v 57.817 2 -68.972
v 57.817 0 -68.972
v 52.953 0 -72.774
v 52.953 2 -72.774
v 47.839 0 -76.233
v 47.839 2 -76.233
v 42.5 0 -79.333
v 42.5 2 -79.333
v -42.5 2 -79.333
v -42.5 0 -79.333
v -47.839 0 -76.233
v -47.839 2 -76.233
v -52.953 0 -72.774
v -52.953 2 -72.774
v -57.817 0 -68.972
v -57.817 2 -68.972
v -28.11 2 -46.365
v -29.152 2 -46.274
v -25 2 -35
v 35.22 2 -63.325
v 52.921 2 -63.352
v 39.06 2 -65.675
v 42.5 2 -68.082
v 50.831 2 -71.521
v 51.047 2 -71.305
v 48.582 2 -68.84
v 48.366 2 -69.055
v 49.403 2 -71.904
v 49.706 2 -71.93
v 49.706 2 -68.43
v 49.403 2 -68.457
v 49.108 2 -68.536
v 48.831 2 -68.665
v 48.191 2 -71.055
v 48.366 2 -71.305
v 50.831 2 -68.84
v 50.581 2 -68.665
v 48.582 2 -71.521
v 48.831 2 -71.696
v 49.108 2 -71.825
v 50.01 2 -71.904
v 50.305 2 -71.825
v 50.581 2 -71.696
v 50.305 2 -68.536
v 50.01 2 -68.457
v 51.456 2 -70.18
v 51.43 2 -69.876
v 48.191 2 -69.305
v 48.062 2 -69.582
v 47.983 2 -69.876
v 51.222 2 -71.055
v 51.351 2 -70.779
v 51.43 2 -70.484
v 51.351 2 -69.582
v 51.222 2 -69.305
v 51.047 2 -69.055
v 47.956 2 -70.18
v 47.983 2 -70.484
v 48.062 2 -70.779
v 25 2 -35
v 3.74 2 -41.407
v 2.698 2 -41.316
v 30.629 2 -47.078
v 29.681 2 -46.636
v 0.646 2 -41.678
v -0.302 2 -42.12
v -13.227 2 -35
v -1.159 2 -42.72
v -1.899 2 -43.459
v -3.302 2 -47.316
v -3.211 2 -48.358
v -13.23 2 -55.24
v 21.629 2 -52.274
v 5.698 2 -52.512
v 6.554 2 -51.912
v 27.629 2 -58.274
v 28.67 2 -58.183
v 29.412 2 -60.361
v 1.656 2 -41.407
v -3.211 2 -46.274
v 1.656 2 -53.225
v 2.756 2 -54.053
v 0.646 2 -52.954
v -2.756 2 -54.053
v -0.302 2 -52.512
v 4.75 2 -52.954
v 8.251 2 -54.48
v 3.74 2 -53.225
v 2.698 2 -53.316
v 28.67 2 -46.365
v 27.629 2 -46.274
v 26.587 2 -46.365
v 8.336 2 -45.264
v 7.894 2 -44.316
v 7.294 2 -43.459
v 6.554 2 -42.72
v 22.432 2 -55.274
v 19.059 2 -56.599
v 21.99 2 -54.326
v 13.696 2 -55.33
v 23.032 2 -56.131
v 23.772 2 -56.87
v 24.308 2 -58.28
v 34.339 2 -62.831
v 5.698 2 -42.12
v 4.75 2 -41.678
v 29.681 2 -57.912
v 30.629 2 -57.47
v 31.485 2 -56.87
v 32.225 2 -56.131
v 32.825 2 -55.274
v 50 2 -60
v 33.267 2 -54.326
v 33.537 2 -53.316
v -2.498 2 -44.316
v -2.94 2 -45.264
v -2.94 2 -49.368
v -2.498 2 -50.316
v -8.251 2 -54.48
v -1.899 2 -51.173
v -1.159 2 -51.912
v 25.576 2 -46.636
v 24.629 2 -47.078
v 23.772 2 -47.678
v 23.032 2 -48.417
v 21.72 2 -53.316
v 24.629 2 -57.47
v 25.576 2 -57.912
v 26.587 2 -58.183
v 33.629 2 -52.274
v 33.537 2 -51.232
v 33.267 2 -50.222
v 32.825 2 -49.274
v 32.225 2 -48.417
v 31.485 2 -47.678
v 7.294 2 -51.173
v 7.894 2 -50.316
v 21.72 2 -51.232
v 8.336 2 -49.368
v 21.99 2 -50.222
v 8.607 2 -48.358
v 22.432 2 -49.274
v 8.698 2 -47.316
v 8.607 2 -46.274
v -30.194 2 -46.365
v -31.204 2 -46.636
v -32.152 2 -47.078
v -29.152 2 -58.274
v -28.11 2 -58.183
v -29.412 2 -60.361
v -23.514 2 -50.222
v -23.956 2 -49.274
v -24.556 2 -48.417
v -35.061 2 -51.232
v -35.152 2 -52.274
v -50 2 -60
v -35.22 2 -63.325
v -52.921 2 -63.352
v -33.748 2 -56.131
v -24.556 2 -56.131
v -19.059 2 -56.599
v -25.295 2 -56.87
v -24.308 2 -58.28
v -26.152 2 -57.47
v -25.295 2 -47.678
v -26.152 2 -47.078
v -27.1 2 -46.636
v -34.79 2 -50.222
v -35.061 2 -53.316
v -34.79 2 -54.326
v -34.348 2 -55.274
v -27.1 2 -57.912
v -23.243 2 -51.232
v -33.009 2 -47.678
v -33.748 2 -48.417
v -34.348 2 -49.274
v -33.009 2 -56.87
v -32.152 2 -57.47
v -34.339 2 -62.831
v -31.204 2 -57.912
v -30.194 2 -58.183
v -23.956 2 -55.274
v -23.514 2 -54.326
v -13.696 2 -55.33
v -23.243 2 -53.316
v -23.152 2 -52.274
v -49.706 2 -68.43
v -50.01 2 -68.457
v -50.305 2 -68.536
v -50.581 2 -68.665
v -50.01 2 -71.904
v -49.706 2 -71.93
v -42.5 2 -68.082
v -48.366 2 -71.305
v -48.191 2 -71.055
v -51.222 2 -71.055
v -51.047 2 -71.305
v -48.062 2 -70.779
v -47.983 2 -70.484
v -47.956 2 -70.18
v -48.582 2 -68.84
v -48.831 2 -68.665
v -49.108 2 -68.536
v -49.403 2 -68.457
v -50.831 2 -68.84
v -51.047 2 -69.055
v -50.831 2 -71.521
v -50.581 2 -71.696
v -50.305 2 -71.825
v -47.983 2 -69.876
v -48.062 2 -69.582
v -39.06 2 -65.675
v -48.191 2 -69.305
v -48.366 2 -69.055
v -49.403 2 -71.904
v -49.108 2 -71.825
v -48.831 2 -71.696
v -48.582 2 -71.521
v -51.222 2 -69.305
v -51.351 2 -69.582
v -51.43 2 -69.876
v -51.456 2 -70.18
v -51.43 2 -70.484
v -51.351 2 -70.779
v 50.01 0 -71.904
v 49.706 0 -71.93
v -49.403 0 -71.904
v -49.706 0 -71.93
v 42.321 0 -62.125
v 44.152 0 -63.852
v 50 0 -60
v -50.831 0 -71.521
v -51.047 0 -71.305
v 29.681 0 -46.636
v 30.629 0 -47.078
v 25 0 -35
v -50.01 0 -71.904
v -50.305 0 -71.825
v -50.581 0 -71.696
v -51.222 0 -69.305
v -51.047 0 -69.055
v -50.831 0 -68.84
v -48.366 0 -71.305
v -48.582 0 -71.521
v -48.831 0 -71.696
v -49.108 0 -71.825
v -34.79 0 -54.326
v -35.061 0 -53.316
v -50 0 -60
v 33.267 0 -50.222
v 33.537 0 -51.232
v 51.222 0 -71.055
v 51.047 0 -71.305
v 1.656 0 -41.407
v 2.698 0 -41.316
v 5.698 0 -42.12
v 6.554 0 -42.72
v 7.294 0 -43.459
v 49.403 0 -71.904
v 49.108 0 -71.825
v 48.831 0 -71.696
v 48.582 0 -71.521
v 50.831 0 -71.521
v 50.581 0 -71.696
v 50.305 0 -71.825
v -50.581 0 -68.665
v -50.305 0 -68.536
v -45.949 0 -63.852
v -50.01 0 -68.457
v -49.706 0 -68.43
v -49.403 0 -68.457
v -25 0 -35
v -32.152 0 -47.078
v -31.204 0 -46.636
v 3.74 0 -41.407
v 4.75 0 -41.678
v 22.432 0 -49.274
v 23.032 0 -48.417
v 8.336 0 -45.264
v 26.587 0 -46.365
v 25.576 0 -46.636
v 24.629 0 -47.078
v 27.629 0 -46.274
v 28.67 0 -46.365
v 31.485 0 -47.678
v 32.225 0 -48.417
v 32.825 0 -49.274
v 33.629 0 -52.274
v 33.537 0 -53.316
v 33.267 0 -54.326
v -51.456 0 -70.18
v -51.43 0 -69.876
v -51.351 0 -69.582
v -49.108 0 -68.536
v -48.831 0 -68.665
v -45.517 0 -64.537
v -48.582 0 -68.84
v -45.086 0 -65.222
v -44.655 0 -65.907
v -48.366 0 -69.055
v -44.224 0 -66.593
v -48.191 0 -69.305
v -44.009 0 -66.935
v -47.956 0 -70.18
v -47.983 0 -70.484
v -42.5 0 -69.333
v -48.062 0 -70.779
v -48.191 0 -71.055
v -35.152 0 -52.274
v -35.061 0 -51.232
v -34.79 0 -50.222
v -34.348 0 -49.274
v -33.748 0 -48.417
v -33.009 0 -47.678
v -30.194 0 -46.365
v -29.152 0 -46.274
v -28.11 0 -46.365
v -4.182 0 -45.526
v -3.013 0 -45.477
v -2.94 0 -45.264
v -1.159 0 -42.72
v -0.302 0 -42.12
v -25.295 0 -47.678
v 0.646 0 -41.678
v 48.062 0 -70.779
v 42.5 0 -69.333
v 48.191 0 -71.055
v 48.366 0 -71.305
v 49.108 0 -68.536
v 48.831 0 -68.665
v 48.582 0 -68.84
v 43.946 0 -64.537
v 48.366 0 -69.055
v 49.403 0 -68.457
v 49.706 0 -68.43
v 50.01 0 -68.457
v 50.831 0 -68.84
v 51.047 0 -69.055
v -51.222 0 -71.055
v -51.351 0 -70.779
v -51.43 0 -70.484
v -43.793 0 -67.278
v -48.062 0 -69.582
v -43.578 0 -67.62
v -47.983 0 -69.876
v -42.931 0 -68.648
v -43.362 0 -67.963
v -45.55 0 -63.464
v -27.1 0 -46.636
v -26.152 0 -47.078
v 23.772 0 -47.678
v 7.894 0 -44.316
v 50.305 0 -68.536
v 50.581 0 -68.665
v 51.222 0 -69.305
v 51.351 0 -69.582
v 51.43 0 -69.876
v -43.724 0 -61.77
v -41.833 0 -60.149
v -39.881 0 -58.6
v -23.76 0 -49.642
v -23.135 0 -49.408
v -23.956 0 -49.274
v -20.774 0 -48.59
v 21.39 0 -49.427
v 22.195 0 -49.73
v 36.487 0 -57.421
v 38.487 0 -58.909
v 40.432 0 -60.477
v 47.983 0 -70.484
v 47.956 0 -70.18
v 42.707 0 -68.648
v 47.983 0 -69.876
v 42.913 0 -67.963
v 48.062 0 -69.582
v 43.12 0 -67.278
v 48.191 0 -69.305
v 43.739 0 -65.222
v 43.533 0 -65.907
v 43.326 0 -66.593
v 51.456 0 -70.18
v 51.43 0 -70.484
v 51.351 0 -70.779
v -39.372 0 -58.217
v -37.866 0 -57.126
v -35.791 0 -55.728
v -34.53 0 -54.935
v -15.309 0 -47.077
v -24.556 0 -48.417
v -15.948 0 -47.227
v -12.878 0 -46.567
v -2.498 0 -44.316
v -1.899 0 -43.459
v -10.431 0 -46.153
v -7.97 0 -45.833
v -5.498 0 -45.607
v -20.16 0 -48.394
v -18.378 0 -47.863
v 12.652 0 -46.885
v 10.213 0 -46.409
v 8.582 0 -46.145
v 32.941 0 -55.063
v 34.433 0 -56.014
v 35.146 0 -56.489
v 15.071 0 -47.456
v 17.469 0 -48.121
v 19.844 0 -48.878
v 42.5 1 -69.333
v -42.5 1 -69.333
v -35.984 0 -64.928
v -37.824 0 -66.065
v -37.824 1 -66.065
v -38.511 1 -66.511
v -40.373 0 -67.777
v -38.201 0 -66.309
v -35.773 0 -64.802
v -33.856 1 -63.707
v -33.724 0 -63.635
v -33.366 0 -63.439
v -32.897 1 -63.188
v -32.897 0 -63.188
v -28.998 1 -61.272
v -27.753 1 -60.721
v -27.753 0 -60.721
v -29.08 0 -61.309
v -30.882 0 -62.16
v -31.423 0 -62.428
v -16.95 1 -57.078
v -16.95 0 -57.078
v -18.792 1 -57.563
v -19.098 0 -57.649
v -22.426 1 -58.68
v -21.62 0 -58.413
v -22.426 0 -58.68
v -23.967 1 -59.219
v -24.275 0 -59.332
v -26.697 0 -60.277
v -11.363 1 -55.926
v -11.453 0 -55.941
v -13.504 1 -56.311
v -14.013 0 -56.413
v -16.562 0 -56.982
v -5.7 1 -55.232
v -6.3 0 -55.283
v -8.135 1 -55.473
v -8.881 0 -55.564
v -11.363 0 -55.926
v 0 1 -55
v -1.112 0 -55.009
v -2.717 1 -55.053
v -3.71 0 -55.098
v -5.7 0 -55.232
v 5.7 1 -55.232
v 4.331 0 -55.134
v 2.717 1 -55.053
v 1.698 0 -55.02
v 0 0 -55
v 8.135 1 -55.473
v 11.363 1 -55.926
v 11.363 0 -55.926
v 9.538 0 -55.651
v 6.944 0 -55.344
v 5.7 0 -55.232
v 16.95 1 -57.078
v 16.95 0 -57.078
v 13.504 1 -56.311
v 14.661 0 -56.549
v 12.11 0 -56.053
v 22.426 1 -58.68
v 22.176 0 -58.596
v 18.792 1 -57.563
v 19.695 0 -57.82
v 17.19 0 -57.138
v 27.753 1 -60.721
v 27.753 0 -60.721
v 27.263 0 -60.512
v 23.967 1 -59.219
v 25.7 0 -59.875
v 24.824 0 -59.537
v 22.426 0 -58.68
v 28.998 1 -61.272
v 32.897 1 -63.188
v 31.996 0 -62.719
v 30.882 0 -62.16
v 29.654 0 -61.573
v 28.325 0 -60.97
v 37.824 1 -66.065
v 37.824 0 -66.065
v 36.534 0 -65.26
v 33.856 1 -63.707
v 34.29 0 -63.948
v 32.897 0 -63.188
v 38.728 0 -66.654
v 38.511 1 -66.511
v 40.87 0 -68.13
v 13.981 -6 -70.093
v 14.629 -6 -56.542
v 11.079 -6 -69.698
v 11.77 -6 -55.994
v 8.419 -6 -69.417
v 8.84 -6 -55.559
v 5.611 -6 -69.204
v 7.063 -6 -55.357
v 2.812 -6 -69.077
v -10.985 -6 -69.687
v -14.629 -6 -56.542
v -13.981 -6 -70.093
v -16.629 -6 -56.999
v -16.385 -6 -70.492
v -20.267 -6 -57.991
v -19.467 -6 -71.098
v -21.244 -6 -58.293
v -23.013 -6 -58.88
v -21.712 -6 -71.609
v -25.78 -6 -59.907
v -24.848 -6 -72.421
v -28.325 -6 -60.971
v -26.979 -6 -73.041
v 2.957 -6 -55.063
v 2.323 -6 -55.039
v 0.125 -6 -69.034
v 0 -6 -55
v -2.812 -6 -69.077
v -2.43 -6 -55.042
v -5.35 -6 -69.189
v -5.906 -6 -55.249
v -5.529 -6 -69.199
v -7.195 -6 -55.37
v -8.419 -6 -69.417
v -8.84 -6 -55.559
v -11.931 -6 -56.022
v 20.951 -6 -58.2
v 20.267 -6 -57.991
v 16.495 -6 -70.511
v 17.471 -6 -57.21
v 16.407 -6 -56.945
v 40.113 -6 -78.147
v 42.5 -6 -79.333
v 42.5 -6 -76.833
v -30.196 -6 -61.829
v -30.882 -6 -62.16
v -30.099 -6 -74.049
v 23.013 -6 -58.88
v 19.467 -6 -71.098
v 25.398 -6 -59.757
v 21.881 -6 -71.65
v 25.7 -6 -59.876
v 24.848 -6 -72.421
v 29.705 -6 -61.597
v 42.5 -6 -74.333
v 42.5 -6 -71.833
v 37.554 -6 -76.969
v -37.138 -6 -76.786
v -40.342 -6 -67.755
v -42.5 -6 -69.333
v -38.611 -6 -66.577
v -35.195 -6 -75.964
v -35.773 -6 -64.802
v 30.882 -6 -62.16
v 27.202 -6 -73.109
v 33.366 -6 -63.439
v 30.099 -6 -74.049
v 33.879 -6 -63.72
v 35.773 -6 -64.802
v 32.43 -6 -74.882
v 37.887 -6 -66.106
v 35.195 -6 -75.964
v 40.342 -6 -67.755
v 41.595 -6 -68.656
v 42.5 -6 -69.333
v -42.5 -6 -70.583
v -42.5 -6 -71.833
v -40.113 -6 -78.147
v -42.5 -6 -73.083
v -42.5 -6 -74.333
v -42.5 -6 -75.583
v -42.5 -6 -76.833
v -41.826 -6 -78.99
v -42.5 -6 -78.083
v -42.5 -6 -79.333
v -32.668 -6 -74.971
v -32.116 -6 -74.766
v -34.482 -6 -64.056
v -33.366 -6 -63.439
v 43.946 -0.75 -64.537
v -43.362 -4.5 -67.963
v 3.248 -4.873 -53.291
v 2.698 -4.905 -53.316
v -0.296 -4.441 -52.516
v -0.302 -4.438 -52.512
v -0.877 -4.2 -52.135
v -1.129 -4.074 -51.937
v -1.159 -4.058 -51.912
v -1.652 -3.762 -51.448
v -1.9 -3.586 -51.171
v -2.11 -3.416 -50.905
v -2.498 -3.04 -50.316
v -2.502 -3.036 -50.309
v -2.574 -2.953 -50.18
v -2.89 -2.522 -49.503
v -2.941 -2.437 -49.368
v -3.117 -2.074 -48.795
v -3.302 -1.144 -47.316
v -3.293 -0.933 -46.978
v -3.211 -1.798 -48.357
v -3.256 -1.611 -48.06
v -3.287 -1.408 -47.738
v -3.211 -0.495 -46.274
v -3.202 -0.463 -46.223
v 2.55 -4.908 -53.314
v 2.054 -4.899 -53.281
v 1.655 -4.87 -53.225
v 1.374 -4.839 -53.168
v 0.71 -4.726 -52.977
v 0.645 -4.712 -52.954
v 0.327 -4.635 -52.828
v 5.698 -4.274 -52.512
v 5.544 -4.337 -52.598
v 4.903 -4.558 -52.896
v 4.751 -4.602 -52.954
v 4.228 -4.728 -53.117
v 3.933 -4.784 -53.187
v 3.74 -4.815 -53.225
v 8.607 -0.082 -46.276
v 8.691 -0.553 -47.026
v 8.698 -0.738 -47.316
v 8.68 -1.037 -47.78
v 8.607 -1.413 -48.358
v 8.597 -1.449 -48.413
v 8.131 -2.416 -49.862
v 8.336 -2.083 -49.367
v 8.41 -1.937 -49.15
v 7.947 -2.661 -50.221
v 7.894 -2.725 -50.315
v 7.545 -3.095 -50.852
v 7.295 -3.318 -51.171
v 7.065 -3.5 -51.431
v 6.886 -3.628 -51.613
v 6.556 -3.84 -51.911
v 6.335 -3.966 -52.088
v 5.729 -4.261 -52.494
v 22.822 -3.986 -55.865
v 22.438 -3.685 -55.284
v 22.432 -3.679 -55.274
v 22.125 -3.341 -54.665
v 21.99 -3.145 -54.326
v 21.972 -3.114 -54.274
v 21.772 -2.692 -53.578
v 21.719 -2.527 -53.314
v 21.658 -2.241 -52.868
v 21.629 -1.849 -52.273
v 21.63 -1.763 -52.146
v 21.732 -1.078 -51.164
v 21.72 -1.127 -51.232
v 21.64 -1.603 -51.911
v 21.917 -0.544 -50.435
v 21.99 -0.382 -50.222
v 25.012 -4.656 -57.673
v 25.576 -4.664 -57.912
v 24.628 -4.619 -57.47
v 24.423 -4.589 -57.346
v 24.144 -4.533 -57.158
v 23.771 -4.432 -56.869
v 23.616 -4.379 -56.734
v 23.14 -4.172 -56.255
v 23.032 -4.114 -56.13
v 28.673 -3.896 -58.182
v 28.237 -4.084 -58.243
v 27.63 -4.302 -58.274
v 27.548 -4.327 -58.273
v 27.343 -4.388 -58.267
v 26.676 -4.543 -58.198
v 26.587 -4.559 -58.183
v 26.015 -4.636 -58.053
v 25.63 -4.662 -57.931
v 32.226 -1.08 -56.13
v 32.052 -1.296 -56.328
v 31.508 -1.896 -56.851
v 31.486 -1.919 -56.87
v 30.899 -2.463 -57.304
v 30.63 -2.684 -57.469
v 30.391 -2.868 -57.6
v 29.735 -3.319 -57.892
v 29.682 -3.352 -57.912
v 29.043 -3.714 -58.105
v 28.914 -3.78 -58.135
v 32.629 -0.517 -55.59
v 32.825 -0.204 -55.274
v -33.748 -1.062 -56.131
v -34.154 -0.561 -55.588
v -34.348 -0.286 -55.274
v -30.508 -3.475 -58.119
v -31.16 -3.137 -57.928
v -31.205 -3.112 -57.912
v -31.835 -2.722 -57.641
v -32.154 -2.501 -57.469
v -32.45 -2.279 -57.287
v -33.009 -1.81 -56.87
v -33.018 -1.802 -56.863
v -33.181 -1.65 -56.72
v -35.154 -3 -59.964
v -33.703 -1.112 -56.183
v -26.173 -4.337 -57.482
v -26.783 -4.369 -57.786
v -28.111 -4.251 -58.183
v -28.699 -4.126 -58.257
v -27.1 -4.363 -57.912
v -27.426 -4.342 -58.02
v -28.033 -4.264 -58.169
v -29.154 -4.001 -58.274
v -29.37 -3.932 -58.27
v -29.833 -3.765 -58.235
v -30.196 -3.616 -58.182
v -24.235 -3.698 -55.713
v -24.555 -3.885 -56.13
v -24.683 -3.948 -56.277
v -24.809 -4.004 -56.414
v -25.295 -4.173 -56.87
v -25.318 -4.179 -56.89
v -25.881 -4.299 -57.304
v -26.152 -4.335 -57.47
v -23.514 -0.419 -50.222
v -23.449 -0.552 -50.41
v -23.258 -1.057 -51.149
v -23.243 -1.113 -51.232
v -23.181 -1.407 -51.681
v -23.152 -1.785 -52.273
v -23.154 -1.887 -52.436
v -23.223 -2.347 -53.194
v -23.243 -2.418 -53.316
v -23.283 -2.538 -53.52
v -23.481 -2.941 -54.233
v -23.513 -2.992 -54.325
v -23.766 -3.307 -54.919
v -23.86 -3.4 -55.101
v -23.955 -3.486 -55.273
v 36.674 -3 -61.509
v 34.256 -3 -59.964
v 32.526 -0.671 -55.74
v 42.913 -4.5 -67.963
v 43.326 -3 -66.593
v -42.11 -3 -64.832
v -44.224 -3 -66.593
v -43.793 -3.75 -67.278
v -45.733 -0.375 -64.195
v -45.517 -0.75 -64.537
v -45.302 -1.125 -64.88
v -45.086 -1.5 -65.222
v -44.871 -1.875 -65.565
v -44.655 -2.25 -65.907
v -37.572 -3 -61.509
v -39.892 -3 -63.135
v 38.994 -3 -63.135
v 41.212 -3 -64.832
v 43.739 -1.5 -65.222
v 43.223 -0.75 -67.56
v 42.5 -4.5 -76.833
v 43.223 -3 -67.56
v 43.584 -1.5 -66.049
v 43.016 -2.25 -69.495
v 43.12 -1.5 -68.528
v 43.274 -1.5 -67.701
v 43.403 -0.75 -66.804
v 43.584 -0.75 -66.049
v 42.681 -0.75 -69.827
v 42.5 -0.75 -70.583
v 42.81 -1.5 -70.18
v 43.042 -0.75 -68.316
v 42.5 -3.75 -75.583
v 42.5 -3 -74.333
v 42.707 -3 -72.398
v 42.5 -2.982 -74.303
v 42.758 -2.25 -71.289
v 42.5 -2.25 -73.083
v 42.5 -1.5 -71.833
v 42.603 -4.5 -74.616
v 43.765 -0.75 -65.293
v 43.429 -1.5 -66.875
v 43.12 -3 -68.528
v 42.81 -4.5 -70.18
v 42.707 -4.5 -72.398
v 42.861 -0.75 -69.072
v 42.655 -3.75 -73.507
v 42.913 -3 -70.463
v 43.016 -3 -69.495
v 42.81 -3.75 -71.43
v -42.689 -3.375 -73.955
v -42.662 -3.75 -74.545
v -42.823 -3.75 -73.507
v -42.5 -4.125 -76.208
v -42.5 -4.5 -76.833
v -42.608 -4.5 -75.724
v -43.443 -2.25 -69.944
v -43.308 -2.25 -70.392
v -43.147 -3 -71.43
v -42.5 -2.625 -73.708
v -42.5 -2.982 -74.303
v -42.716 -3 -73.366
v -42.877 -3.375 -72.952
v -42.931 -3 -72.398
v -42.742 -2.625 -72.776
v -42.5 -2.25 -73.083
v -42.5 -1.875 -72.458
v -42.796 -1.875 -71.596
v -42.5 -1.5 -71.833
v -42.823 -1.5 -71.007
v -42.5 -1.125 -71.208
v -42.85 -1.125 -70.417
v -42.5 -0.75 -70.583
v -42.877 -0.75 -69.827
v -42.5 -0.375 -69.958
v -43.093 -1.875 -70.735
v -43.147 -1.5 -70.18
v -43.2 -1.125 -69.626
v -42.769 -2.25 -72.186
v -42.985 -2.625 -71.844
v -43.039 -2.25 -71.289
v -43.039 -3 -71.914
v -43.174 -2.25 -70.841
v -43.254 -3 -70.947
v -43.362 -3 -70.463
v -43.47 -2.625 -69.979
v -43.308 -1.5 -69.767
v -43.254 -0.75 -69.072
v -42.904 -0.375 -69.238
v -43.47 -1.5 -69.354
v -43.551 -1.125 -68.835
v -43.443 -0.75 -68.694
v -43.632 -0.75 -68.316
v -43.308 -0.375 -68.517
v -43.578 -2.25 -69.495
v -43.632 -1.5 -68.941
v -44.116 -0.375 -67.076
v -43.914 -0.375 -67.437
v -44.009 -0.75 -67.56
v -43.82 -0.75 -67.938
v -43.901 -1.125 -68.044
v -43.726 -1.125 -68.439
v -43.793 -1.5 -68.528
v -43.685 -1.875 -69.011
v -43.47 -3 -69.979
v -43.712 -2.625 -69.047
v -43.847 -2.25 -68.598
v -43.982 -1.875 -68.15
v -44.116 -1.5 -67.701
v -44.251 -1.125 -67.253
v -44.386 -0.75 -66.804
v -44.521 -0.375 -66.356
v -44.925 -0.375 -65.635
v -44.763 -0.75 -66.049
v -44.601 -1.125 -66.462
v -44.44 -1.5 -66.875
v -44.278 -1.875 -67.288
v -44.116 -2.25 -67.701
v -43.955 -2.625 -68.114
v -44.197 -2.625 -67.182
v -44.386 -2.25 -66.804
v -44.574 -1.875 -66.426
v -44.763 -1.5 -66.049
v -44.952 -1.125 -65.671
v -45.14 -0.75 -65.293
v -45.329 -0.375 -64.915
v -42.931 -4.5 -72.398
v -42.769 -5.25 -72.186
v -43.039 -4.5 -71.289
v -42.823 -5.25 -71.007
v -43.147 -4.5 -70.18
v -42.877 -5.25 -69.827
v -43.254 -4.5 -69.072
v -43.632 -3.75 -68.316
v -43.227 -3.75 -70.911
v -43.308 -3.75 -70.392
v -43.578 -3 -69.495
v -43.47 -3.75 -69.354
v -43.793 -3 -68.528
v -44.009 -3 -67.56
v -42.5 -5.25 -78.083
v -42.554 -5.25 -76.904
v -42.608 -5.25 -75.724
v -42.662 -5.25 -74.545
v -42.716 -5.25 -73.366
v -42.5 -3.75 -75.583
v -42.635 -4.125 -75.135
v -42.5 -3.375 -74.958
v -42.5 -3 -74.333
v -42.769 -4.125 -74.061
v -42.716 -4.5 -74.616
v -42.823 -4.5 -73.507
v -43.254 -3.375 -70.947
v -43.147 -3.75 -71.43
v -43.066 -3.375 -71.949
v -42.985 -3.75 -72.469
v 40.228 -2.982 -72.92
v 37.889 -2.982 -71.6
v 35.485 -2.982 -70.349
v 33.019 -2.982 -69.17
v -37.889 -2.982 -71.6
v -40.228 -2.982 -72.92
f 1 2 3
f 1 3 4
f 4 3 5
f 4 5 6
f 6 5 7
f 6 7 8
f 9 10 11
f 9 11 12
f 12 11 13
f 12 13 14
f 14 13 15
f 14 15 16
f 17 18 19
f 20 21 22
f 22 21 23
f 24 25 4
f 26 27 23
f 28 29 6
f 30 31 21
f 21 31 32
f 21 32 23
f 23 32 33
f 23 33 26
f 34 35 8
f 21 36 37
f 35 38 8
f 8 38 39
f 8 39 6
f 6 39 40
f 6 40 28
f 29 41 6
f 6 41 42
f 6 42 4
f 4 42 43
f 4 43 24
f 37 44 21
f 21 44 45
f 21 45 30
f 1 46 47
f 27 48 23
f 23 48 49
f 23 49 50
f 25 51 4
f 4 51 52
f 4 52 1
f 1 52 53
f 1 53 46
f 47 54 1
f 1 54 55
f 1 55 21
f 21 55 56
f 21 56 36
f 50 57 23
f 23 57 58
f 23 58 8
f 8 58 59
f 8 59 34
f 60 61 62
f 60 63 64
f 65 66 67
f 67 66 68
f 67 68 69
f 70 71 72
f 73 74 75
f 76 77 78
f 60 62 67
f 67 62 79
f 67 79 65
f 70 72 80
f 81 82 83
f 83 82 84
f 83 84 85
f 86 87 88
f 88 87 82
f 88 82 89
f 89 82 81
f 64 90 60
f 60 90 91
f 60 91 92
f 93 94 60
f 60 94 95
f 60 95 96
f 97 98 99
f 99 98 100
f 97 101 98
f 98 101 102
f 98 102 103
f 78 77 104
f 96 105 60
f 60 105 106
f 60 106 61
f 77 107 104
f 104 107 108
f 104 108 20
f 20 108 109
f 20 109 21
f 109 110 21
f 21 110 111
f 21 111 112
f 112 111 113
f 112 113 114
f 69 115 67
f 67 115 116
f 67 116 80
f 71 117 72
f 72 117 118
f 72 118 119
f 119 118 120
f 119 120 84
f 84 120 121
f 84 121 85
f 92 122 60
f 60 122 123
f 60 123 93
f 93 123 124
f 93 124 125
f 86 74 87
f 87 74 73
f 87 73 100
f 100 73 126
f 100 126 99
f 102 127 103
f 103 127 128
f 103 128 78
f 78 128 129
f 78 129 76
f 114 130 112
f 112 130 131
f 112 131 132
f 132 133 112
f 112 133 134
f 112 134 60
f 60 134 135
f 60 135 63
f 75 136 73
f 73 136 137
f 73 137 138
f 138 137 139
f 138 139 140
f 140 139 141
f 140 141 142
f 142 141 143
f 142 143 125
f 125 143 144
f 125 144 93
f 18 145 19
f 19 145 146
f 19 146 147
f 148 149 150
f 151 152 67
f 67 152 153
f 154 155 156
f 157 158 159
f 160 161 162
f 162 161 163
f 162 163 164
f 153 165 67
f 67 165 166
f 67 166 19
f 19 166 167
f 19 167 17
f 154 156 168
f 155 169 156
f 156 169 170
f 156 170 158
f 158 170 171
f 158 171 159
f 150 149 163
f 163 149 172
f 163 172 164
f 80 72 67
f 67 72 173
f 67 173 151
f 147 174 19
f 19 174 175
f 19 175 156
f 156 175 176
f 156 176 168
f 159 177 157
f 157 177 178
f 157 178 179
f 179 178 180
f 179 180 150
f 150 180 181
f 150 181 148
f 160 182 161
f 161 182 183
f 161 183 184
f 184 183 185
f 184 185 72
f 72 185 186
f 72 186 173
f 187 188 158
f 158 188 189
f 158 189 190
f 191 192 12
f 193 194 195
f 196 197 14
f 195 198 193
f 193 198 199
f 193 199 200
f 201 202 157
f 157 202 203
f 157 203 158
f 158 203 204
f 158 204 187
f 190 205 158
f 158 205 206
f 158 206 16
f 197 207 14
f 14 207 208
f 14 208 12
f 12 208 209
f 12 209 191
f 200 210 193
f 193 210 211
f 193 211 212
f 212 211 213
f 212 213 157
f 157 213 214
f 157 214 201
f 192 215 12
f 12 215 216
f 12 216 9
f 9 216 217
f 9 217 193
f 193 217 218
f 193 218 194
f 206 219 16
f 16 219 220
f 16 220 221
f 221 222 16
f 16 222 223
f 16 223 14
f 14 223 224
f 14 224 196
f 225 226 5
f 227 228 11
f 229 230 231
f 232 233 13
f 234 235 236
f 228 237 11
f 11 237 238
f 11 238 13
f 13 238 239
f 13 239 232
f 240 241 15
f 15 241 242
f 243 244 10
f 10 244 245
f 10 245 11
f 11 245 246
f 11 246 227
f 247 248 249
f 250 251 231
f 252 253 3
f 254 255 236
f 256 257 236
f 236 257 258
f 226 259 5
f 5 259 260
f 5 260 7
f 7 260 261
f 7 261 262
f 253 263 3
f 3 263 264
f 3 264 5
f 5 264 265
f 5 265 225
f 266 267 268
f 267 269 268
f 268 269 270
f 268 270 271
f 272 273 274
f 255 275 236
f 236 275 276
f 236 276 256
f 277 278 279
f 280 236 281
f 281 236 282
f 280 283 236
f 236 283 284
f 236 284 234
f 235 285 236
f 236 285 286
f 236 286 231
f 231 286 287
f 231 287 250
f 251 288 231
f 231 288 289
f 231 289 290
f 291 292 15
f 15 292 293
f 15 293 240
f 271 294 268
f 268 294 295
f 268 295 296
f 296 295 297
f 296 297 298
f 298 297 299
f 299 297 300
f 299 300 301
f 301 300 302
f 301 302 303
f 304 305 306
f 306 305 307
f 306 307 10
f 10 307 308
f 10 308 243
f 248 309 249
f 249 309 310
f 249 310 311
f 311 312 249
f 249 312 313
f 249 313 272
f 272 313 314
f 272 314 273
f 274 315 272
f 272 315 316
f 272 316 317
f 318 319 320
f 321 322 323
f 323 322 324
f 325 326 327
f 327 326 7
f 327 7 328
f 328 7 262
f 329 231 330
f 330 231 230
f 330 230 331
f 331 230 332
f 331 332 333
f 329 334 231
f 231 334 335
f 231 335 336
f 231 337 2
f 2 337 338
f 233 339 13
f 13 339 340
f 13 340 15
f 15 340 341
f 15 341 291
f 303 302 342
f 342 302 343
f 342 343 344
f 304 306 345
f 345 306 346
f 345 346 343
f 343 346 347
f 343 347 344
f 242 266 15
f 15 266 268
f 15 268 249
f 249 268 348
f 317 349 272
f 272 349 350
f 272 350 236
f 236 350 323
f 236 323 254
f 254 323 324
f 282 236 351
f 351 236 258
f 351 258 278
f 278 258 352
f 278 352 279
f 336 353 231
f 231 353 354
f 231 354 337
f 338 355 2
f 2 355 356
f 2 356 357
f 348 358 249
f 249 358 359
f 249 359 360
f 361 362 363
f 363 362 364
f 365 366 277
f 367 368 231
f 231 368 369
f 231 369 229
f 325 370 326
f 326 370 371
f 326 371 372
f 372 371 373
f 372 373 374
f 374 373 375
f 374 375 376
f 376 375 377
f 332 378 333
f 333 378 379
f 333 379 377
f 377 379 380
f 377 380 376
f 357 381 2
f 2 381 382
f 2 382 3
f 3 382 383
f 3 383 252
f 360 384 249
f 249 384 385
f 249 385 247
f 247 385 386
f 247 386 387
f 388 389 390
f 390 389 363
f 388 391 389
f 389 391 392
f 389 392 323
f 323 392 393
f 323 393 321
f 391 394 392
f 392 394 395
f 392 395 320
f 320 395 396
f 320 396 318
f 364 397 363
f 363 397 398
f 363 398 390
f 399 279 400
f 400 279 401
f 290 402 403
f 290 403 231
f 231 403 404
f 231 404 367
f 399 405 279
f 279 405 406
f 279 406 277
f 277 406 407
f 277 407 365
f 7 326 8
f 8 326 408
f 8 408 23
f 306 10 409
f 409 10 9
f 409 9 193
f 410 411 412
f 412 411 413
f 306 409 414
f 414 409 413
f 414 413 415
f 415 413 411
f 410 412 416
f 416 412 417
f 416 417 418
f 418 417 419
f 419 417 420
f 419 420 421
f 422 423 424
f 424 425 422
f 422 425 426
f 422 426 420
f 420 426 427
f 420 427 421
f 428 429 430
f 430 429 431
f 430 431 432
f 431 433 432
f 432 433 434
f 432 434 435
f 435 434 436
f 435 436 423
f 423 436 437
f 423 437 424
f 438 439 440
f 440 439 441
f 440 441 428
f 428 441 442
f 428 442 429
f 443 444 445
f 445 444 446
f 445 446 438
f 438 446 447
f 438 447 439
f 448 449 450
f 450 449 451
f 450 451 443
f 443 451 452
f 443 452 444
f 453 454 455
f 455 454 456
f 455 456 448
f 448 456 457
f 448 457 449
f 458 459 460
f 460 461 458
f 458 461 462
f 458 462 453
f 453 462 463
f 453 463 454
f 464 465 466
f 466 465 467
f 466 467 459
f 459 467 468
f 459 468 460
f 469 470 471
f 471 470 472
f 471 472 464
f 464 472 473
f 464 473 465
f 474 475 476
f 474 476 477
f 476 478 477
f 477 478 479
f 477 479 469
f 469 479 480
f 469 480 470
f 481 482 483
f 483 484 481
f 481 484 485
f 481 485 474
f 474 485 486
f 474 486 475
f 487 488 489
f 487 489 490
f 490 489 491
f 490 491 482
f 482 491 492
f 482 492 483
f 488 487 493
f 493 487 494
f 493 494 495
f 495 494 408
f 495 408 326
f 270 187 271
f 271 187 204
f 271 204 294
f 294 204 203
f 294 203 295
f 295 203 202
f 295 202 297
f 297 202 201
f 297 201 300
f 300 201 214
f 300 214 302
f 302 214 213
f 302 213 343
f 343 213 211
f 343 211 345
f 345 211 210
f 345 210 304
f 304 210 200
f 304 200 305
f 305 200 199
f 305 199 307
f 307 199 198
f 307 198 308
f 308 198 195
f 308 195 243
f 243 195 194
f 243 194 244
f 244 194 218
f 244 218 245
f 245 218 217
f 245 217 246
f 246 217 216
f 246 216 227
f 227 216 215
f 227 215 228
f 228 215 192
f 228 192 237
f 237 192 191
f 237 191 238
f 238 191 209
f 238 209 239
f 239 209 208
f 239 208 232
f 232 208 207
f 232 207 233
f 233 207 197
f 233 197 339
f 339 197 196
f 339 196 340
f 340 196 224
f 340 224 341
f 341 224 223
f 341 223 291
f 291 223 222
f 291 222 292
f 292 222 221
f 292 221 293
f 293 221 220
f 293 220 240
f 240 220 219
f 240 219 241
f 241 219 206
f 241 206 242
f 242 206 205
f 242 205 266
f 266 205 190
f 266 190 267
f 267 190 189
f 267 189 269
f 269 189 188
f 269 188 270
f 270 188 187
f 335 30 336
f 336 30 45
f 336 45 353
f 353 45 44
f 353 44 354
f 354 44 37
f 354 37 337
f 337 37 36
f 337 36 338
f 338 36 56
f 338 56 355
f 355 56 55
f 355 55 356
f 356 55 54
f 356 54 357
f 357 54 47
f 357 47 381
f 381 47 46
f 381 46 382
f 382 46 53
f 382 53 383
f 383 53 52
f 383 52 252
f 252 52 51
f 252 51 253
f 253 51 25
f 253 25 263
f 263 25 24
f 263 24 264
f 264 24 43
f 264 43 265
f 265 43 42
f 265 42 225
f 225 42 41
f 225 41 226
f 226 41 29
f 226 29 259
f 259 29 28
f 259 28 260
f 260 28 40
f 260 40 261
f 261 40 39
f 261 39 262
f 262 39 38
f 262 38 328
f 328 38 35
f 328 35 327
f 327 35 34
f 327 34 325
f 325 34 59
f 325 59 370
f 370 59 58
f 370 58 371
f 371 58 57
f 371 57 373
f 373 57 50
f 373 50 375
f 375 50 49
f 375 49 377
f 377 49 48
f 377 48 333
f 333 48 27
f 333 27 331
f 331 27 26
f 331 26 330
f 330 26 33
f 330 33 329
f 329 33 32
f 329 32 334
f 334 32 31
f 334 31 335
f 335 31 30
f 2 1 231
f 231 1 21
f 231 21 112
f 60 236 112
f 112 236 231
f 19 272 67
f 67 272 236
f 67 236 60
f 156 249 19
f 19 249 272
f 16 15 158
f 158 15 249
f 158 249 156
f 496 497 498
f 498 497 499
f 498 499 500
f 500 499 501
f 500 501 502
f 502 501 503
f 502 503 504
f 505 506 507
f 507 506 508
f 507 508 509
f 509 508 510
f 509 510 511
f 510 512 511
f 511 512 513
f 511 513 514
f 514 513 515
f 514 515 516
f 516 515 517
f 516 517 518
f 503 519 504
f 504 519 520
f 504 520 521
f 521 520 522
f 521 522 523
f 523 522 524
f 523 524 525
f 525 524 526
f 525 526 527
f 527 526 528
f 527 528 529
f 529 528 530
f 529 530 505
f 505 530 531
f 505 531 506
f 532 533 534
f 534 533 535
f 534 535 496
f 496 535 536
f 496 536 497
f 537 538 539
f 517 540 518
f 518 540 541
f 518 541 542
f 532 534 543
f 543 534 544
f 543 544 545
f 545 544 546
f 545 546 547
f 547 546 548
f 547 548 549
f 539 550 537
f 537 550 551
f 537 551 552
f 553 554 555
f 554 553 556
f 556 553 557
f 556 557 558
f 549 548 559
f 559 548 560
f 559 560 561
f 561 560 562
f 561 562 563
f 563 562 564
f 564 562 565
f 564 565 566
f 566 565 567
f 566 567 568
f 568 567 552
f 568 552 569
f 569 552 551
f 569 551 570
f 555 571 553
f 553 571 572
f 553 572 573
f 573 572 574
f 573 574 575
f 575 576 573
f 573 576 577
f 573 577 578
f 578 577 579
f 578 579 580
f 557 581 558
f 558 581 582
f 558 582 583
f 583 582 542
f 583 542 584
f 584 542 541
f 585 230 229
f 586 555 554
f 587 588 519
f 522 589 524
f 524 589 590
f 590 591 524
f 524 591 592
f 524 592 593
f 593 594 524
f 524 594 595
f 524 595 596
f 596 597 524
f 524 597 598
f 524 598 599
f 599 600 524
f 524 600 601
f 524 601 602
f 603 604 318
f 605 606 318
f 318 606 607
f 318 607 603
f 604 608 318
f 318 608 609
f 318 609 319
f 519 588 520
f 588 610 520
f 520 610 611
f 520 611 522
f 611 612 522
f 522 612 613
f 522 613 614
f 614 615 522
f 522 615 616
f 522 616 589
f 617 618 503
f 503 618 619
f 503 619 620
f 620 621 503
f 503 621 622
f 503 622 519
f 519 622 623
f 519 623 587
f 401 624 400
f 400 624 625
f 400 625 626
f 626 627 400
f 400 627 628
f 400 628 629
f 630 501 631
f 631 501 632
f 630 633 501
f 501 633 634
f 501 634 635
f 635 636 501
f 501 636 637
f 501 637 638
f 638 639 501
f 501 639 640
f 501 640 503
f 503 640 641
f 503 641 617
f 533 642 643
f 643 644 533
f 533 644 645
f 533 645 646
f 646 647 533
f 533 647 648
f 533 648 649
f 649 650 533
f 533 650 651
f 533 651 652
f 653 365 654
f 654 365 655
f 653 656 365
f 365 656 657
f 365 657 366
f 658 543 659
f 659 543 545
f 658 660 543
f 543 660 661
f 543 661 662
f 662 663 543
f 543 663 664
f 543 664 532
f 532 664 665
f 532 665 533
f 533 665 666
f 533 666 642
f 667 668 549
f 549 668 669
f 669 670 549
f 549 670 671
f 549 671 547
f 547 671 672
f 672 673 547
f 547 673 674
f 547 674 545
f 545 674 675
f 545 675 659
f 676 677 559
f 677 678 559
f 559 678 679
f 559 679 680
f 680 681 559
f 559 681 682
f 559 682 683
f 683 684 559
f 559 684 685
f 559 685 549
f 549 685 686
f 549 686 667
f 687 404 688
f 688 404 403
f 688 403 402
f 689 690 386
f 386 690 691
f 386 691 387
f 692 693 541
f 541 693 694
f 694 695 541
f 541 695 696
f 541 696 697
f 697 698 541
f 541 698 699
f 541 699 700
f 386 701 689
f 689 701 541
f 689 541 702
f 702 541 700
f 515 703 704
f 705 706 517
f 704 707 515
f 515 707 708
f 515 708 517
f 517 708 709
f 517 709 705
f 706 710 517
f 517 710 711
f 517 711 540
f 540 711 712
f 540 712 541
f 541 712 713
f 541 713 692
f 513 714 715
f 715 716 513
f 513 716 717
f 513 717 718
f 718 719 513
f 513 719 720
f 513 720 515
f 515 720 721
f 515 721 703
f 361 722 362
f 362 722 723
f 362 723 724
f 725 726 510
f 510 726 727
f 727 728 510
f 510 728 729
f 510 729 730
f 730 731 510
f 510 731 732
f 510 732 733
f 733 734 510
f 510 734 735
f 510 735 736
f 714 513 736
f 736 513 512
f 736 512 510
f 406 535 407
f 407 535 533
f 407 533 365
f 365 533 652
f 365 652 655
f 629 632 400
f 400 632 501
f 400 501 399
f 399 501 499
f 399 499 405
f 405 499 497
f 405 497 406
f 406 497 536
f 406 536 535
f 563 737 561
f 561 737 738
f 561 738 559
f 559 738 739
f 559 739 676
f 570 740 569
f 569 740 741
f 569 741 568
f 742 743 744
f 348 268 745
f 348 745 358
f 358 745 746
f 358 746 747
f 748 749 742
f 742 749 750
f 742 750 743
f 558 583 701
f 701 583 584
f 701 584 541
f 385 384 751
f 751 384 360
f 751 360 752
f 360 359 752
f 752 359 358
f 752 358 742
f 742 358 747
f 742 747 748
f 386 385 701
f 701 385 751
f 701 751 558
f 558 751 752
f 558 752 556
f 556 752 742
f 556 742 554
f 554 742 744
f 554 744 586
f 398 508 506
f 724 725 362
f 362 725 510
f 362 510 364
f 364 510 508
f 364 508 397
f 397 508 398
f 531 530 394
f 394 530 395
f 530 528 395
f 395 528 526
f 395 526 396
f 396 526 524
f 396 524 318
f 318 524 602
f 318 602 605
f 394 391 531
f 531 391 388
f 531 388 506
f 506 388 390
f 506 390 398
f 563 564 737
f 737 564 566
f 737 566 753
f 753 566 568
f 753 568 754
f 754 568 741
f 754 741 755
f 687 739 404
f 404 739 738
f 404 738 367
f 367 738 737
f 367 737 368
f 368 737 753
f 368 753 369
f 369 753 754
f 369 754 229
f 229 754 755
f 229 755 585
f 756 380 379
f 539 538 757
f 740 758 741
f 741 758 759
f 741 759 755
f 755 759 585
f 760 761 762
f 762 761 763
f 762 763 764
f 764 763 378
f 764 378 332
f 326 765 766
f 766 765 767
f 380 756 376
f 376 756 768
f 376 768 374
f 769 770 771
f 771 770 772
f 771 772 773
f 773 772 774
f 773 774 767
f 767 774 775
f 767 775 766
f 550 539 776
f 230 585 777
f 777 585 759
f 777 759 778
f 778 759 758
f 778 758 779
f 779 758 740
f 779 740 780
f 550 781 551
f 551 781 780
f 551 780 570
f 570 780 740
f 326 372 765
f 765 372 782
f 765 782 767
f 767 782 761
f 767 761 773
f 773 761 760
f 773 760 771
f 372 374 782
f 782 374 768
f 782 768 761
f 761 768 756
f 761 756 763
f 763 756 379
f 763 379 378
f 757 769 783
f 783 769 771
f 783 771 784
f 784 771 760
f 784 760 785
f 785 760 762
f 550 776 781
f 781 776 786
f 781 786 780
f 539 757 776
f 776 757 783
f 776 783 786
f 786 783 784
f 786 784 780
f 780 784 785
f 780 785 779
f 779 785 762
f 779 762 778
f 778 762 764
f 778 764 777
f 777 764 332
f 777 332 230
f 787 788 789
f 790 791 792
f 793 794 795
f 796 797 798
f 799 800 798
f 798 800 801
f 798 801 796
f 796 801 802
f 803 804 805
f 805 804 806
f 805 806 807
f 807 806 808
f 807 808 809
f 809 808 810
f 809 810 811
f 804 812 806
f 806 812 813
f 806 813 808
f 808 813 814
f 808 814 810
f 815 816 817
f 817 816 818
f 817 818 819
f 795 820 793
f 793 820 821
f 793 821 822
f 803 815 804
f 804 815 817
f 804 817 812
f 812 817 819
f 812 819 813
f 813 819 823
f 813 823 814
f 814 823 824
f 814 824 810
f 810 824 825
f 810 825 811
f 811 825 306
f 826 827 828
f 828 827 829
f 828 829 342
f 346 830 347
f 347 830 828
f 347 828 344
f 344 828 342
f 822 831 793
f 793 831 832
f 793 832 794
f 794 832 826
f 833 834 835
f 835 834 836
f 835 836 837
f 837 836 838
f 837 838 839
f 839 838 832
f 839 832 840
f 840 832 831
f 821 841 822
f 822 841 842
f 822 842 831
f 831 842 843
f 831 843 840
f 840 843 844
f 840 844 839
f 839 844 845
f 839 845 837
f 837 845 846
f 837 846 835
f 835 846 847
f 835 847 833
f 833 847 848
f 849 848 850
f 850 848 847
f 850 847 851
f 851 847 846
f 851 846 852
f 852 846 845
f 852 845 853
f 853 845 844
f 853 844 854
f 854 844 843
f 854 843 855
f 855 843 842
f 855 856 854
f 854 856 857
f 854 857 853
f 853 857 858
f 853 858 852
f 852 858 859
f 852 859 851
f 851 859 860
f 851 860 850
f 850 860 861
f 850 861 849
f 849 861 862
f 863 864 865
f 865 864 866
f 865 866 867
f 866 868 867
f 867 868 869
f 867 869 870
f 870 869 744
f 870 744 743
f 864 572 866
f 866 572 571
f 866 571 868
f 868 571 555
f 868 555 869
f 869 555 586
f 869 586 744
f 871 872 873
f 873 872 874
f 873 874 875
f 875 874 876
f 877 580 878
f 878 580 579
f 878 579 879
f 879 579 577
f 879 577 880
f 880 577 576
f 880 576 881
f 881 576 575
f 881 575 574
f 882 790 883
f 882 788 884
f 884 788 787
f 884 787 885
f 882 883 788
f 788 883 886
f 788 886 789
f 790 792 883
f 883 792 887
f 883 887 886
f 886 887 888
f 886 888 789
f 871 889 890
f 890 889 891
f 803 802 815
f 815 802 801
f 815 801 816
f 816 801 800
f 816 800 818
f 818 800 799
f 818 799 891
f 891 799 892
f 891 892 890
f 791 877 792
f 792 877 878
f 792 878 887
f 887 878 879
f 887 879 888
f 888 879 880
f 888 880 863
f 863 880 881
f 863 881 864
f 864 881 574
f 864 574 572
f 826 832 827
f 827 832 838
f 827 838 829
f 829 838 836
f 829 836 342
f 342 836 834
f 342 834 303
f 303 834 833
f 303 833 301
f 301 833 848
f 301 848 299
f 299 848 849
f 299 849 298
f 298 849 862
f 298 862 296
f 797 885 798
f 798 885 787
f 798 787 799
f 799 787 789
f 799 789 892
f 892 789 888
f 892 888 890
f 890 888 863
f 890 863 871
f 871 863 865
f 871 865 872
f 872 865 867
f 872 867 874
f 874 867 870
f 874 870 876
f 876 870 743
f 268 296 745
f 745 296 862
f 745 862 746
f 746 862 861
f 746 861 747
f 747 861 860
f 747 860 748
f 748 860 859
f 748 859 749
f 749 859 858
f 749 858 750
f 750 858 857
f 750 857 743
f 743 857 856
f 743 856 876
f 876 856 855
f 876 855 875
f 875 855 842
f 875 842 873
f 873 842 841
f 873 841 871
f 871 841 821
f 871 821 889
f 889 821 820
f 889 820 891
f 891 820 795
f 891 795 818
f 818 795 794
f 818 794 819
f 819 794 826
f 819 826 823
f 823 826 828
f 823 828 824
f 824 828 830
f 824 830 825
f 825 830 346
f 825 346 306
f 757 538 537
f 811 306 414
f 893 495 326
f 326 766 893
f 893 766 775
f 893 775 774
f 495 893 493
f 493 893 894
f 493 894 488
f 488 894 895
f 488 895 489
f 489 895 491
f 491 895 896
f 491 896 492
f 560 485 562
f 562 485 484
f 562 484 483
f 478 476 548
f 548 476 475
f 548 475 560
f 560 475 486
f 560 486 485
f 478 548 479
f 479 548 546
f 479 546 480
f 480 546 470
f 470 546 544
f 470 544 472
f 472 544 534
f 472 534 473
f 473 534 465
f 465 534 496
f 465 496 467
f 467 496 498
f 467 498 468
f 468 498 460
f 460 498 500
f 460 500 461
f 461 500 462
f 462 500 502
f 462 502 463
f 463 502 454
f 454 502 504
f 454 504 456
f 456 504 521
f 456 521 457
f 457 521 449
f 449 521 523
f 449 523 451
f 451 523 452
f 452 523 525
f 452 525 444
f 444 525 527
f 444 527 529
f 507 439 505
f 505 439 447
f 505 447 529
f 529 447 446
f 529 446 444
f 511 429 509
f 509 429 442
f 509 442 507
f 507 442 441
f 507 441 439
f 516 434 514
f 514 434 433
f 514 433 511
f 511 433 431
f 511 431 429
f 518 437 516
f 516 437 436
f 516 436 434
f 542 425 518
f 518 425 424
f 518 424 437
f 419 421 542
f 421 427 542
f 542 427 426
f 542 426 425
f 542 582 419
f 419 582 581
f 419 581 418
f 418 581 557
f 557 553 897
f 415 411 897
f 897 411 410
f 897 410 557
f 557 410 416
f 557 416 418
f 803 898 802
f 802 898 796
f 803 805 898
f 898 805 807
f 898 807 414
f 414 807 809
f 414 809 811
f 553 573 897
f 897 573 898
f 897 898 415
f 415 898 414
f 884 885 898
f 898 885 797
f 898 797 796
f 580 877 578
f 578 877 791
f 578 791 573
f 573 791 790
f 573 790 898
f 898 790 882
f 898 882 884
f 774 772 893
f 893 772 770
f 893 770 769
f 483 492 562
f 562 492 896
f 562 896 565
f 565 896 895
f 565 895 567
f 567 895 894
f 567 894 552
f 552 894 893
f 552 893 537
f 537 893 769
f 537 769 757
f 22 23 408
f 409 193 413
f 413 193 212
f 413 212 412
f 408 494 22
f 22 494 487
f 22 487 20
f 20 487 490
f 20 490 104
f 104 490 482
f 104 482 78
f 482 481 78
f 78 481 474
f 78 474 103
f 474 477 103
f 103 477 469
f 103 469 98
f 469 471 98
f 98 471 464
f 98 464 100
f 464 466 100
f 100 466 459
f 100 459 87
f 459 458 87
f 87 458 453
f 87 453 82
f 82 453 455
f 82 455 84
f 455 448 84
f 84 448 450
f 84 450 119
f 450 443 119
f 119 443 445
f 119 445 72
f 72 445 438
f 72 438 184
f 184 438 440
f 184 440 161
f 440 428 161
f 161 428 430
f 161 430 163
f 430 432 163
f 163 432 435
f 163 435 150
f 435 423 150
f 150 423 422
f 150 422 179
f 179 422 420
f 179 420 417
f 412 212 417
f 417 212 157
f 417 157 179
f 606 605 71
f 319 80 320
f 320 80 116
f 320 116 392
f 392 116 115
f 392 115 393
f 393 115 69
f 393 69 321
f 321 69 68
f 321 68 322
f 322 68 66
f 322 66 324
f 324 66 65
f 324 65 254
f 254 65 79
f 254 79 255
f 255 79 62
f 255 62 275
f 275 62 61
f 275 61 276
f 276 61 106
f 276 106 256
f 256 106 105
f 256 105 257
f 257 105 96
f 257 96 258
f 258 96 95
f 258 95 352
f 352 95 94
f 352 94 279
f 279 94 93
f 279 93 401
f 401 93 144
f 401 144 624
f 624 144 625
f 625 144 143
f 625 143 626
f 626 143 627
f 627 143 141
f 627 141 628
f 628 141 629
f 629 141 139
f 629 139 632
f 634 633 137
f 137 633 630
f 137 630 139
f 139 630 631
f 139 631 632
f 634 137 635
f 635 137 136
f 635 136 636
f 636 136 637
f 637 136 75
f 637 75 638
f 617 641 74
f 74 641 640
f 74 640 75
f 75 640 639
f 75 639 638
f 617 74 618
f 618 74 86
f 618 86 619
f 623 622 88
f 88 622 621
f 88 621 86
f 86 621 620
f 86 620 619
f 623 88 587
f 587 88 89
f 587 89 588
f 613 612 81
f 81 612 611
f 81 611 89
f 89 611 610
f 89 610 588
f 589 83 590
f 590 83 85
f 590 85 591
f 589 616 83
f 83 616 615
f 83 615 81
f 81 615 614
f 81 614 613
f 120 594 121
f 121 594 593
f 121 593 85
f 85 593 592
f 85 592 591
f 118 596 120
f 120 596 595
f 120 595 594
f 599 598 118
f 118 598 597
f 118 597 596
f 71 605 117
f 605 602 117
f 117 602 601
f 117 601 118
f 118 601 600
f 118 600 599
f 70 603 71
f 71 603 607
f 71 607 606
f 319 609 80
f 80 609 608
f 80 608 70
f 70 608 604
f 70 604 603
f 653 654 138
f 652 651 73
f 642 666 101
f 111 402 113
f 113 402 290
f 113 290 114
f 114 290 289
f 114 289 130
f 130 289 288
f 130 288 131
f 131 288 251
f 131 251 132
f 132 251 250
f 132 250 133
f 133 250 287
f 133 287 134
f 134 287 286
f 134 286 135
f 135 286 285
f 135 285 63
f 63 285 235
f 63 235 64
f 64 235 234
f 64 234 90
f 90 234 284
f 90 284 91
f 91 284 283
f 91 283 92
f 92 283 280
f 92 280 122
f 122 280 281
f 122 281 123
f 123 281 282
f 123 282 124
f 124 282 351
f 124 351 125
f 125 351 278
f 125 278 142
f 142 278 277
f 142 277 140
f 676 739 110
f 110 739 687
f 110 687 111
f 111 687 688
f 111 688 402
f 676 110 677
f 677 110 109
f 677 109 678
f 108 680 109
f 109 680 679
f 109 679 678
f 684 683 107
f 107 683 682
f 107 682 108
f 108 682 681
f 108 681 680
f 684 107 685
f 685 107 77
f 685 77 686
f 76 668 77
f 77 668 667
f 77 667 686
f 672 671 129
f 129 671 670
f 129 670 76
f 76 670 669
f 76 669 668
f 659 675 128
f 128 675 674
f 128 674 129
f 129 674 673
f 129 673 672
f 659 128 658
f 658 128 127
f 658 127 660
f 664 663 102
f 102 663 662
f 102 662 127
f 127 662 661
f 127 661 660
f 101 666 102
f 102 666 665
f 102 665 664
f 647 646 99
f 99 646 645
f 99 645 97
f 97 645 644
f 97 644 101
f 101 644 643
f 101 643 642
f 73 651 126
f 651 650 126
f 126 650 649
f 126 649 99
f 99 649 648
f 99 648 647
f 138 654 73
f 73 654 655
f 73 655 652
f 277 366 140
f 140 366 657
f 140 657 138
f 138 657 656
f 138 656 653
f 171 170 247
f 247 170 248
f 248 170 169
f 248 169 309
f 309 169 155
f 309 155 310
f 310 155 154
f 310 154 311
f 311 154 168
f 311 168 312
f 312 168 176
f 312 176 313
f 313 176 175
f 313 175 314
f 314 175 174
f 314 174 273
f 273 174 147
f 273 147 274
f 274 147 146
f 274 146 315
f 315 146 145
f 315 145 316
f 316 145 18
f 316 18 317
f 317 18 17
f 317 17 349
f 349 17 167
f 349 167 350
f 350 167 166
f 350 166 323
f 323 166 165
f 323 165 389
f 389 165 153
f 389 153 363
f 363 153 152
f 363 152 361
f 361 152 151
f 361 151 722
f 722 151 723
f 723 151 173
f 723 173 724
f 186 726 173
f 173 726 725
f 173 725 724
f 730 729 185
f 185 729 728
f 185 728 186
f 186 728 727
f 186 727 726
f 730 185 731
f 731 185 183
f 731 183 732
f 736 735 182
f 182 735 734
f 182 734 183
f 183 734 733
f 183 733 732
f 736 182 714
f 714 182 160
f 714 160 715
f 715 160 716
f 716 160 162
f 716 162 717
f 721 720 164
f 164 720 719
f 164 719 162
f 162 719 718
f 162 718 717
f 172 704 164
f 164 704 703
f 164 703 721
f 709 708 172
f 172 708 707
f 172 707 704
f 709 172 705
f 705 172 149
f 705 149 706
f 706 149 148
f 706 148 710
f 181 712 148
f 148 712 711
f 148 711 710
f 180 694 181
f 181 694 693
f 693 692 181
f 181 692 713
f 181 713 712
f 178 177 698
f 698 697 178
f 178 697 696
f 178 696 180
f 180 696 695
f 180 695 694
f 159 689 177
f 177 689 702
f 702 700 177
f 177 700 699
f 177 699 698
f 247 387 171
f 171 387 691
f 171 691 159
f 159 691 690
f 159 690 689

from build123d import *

# Parameters (mm, degrees)
SKETCH1_R               = 90
BOSS_EXTRUDE1_DEPTH     = 2
CUT_EXTRUDE2_DEPTH      = 128.294933128
SKETCH9_R               = 1.75
CUT_EXTRUDE7_DEPTH      = 128.294933128
CUT_EXTRUDE8_DEPTH      = 128.294933128
CUT_EXTRUDE8_DEPTH_BACK = 128.294933128
CHAMFER3_SIZE           = 1
SKETCH17_R              = 6
CUT_EXTRUDE9_DEPTH      = 99.491613961


with BuildPart() as part:
    # Sketch1 → Boss-Extrude1 (new body)
    with BuildSketch(Plane(origin=(0, 0, 0), x_dir=(1, 0, 0), z_dir=(0, 1, 0))):
        with Locations(Location((0, 0, 0), (0, 0, 270))):
            Circle(SKETCH1_R)
    extrude(amount=BOSS_EXTRUDE1_DEPTH)

    # Sketch4 → Cut-Extrude2 (cut, through all)
    with BuildSketch(Plane(origin=(0, 2, 0), x_dir=(1, 0, 0), z_dir=(0, 1, 0))):
        with BuildLine():
            Line((-42.5, 79.333158263), (-42.5, 69.333158263))
            ThreePointArc((-42.5, 69.333158263), (0, 55), (42.5, 69.333158263))
            Line((42.5, 69.333158263), (42.5, 79.333158263))
            Line((42.5, 79.333158263), (42.5, 105.809765059))
            Line((42.5, 105.809765059), (-42.5, 105.809765059))
            Line((-42.5, 105.809765059), (-42.5, 79.333158263))
        make_face()
    extrude(amount=-CUT_EXTRUDE2_DEPTH, mode=Mode.SUBTRACT)

    # Sketch9 → Cut-Extrude7 (cut, through all)
    with BuildSketch(Plane(origin=(0, 2, 0), x_dir=(1, 0, 0), z_dir=(0, 1, 0))):
        with Locations(Location((-49.706440821, 70.180266036, 0), (0, 0, 270))):
            Circle(SKETCH9_R)
    cut_extrude7 = extrude(amount=-CUT_EXTRUDE7_DEPTH, mode=Mode.SUBTRACT)

    # Mirror1: Cut-Extrude7 across plane
    add(cut_extrude7.mirror(Plane(origin=(0, 0, 0), x_dir=(0, 0, 1), z_dir=(1, 0, 0))), mode=Mode.SUBTRACT)

    # Sketch10 → Cut-Extrude8 (cut, two sides)
    with BuildSketch(Plane.XZ) as cut_extrude8_sk:
        Polygon((349.590781265, -403.844847198), (57.81736756, -68.972110366), (50, -60), (25, -35), (-25, -35), (-50, -60), (-57.81736756, -68.972110366), (-349.590781265, -403.844847198), (-349.590781265, 484.460223862), (349.590781265, 484.460223862), align=None)
    extrude(amount=CUT_EXTRUDE8_DEPTH, mode=Mode.SUBTRACT)
    extrude(cut_extrude8_sk.sketch, amount=-CUT_EXTRUDE8_DEPTH_BACK, mode=Mode.SUBTRACT)

    # Sketch15 for Loft1 → Loft1 section 0
    with BuildSketch(Plane(origin=(0, -6, 0), x_dir=(1, 0, 0), z_dir=(0, 1, 0))):
        with BuildLine():
            Line((-42.5, 69.333158263), (-42.5, 79.333158263))
            # circular arc as an exact rational Bezier (weights 1, cos(half-angle), 1)
            Bezier((-42.5, 79.333158263), (0, 57.45059928), (42.5, 79.333158263), weights=[1, 0.889071458, 1])
            Line((42.5, 79.333158263), (42.5, 69.333158263))
            Bezier((42.5, 69.333158263), (0, 36.987960736), (-42.5, 69.333158263), weights=[1, 0.795754331, 1])
        make_face()
    # Sketch16 for Loft1 → Loft1 section 1
    with BuildSketch(Plane.XZ):
        with BuildLine():
            Line((-45.948502669, -63.851980058), (-42.5, -69.333158263))
            Bezier((-42.5, -69.333158263), (0, -36.987960736), (42.5, -69.333158263), weights=[1, 0.795754331, 1])
            Line((42.5, -69.333158263), (44.152042302, -63.851980058))
            Bezier((44.152042302, -63.851980058), (-0.898230184, -19.650095816), (-45.948502669, -63.851980058), weights=[1, 0.713795953, 1])
        make_face()
    loft()

    # Chamfer3
    chamfer3_edges = [part.edges().sort_by_distance(p)[0] for p in [
        (0, 2, -55),
    ]]
    chamfer(chamfer3_edges, length=CHAMFER3_SIZE)

    # Sketch17 → Cut-Extrude9 (cut, through all)
    with BuildSketch(Plane(origin=(0, 2, 0), x_dir=(1, 0, 0), z_dir=(0, 1, 0))):
        with Locations(Location((2.697741472, 47.316027374, 0), (0, 0, 270))):
            Circle(SKETCH17_R)
        with Locations(Location((27.628576658, 52.274065286, 0), (0, 0, 270))):
            Circle(SKETCH17_R)
        with Locations(Location((-29.151926102, 52.274065286, 0), (0, 0, 270))):
            Circle(SKETCH17_R)
    extrude(amount=-CUT_EXTRUDE9_DEPTH, mode=Mode.SUBTRACT)


solid = part.part
